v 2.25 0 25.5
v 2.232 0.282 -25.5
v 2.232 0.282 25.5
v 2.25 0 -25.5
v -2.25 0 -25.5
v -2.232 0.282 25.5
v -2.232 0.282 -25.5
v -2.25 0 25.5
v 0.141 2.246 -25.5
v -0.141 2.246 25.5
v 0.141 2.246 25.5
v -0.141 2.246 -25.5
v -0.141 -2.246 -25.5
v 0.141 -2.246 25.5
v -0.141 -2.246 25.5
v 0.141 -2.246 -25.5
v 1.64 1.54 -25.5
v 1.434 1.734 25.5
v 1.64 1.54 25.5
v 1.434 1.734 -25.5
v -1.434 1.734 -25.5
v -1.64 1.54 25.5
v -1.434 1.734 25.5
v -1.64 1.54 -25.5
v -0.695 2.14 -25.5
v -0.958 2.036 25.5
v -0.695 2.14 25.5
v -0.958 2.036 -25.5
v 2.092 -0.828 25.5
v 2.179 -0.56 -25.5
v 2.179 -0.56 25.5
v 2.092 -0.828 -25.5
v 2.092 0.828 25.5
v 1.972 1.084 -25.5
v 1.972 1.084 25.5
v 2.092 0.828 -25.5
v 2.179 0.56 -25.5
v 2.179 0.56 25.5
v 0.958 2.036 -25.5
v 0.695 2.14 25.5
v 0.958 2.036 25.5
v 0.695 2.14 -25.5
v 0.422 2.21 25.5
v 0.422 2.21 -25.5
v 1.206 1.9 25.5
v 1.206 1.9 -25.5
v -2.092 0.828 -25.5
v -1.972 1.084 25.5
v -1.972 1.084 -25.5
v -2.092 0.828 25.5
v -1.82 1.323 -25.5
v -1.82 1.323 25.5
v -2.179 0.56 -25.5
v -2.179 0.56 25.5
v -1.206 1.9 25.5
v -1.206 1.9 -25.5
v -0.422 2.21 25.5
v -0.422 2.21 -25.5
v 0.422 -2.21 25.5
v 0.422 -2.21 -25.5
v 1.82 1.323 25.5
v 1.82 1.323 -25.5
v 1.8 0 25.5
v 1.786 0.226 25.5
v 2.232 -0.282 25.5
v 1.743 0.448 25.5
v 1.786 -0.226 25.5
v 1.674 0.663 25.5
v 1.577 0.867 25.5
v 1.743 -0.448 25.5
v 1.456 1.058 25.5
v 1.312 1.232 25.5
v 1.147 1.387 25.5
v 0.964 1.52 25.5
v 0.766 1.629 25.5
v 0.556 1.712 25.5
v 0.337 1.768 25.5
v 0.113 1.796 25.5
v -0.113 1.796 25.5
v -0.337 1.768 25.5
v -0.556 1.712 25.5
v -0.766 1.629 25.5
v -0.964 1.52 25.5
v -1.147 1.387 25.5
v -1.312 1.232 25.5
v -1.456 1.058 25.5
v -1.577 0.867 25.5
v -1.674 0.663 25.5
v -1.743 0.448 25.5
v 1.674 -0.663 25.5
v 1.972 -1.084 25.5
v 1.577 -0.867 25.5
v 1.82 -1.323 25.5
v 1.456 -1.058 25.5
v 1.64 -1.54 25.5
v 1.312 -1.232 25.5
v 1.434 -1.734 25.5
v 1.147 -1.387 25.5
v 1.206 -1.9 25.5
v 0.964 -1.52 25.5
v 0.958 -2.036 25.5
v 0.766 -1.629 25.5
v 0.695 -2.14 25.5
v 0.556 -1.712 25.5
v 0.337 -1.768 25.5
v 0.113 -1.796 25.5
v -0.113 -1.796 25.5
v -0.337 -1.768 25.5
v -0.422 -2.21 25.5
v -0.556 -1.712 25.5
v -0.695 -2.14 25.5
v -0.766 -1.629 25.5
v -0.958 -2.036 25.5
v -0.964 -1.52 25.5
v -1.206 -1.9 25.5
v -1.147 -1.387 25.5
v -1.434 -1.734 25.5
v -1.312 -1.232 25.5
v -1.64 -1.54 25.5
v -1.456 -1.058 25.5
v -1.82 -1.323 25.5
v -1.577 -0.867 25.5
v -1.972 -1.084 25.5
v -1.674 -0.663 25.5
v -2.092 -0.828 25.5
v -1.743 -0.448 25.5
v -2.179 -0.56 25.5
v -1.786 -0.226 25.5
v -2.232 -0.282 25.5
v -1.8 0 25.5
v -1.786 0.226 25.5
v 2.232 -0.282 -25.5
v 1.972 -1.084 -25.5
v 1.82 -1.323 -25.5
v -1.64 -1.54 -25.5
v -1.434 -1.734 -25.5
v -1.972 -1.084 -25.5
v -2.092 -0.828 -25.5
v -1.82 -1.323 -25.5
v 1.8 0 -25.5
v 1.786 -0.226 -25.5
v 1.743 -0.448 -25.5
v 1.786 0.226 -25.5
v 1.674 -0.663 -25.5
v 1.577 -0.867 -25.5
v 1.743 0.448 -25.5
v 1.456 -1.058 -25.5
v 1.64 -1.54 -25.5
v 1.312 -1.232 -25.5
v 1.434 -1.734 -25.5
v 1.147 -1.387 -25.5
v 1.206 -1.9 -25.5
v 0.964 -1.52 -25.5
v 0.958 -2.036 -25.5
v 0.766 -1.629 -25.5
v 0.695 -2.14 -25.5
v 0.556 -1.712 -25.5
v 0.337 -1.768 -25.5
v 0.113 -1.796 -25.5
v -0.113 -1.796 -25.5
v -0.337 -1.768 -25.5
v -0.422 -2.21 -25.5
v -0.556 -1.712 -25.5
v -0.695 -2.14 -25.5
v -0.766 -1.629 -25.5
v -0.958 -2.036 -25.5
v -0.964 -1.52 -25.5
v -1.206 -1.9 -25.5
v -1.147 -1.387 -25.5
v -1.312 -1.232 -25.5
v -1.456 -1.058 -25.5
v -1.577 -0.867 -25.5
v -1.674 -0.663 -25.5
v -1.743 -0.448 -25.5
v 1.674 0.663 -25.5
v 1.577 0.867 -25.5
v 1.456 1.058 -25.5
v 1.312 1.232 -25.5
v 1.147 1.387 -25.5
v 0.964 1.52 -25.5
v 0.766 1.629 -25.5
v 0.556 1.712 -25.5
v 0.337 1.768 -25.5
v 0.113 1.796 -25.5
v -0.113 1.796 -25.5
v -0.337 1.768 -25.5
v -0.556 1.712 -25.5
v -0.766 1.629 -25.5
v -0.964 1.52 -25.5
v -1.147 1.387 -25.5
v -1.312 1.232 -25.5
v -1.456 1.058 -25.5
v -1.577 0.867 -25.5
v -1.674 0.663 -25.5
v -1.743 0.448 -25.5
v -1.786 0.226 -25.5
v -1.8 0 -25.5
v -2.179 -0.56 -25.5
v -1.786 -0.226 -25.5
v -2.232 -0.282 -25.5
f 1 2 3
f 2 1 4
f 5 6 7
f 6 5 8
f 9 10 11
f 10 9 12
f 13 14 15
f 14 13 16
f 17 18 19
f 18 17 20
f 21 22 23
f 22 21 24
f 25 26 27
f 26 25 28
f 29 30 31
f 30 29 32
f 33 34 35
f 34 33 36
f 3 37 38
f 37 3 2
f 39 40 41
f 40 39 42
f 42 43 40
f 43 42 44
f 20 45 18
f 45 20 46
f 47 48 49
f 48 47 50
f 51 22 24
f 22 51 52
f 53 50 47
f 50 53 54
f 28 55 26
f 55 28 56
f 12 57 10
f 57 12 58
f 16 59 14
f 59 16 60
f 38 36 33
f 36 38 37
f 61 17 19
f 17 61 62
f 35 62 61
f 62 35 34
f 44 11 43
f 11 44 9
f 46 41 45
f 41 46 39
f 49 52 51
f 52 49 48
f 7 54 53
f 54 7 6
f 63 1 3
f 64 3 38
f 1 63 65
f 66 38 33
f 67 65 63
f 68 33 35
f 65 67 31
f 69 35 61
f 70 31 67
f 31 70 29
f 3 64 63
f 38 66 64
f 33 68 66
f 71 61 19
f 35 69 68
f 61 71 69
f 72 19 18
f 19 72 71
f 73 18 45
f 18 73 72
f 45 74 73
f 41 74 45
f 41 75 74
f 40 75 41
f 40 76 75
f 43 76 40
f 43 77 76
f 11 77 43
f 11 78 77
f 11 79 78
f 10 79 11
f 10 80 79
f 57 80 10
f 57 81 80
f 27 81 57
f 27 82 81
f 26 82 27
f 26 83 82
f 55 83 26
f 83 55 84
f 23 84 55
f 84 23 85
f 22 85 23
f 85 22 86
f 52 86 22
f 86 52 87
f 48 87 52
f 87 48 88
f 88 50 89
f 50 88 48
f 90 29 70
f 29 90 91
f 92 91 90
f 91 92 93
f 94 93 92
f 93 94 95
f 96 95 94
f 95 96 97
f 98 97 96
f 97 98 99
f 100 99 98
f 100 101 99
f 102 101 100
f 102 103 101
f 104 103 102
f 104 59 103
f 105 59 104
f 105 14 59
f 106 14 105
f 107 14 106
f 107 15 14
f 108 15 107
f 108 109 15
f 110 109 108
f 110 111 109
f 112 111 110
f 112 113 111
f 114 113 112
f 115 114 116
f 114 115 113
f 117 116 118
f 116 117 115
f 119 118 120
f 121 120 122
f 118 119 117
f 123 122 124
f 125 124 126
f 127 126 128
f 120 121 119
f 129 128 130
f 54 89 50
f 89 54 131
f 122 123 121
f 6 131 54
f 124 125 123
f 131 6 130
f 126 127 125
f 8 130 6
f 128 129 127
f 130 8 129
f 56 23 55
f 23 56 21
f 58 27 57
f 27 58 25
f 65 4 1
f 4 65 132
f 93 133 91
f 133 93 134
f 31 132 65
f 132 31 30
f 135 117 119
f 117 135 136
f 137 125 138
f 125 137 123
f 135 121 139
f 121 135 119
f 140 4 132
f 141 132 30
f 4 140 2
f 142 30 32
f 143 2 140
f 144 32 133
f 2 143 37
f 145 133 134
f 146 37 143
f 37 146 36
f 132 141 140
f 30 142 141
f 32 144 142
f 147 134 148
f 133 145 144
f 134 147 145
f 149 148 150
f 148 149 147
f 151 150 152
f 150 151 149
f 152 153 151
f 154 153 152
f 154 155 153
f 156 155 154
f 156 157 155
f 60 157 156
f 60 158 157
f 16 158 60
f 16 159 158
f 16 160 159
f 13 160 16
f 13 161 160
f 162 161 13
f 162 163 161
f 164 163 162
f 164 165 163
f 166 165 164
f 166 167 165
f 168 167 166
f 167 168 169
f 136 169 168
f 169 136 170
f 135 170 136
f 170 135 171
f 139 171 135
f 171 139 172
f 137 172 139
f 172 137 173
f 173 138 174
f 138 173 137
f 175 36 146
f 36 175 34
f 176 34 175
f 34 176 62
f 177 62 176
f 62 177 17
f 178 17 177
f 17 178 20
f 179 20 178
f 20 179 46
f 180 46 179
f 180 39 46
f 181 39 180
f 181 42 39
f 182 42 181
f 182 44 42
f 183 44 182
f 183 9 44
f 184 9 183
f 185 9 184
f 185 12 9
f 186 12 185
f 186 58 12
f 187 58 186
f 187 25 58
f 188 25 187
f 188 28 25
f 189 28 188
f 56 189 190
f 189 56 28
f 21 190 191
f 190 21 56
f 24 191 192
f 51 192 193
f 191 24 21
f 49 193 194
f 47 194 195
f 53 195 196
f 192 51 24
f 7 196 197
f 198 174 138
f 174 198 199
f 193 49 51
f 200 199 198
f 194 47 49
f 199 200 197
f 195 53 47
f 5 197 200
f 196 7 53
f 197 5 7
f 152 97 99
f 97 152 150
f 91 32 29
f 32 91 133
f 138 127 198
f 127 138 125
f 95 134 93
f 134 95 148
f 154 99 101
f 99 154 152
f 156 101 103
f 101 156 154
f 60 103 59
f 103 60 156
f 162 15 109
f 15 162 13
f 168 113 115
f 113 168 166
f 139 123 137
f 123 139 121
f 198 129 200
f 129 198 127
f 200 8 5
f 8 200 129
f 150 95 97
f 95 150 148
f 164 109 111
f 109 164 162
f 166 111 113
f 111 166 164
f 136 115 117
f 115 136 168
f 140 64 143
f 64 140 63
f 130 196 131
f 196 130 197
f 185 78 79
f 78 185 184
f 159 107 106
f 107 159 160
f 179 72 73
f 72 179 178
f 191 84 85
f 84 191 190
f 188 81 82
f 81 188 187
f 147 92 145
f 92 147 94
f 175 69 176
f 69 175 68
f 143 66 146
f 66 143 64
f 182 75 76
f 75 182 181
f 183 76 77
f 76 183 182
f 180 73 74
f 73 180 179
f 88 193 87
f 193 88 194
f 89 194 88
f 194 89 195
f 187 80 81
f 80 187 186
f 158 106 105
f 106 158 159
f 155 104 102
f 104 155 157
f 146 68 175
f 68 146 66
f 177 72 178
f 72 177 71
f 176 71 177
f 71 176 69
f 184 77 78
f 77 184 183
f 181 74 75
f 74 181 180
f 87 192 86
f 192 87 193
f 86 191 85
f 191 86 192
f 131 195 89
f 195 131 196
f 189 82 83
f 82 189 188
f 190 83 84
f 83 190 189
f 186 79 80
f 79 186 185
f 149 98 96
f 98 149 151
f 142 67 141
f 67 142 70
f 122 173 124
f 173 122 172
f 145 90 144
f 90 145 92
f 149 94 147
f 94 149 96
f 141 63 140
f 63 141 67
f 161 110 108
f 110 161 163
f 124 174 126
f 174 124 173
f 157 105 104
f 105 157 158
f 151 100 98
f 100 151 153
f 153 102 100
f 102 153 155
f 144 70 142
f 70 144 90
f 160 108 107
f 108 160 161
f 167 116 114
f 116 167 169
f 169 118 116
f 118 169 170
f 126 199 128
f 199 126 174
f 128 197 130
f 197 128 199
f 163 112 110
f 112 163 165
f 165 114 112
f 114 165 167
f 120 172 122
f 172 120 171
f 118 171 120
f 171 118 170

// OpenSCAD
$fn = 50;


difference() {
	union() {
		translate(v = [0, 0, -25.5000000000]) {
			cylinder(h = 51, r = 2.2500000000);
		}
	}
	union() {
		translate(v = [0, 0, -100.0000000000]) {
			cylinder(h = 200, r = 1.8000000000);
		}
	}
}
